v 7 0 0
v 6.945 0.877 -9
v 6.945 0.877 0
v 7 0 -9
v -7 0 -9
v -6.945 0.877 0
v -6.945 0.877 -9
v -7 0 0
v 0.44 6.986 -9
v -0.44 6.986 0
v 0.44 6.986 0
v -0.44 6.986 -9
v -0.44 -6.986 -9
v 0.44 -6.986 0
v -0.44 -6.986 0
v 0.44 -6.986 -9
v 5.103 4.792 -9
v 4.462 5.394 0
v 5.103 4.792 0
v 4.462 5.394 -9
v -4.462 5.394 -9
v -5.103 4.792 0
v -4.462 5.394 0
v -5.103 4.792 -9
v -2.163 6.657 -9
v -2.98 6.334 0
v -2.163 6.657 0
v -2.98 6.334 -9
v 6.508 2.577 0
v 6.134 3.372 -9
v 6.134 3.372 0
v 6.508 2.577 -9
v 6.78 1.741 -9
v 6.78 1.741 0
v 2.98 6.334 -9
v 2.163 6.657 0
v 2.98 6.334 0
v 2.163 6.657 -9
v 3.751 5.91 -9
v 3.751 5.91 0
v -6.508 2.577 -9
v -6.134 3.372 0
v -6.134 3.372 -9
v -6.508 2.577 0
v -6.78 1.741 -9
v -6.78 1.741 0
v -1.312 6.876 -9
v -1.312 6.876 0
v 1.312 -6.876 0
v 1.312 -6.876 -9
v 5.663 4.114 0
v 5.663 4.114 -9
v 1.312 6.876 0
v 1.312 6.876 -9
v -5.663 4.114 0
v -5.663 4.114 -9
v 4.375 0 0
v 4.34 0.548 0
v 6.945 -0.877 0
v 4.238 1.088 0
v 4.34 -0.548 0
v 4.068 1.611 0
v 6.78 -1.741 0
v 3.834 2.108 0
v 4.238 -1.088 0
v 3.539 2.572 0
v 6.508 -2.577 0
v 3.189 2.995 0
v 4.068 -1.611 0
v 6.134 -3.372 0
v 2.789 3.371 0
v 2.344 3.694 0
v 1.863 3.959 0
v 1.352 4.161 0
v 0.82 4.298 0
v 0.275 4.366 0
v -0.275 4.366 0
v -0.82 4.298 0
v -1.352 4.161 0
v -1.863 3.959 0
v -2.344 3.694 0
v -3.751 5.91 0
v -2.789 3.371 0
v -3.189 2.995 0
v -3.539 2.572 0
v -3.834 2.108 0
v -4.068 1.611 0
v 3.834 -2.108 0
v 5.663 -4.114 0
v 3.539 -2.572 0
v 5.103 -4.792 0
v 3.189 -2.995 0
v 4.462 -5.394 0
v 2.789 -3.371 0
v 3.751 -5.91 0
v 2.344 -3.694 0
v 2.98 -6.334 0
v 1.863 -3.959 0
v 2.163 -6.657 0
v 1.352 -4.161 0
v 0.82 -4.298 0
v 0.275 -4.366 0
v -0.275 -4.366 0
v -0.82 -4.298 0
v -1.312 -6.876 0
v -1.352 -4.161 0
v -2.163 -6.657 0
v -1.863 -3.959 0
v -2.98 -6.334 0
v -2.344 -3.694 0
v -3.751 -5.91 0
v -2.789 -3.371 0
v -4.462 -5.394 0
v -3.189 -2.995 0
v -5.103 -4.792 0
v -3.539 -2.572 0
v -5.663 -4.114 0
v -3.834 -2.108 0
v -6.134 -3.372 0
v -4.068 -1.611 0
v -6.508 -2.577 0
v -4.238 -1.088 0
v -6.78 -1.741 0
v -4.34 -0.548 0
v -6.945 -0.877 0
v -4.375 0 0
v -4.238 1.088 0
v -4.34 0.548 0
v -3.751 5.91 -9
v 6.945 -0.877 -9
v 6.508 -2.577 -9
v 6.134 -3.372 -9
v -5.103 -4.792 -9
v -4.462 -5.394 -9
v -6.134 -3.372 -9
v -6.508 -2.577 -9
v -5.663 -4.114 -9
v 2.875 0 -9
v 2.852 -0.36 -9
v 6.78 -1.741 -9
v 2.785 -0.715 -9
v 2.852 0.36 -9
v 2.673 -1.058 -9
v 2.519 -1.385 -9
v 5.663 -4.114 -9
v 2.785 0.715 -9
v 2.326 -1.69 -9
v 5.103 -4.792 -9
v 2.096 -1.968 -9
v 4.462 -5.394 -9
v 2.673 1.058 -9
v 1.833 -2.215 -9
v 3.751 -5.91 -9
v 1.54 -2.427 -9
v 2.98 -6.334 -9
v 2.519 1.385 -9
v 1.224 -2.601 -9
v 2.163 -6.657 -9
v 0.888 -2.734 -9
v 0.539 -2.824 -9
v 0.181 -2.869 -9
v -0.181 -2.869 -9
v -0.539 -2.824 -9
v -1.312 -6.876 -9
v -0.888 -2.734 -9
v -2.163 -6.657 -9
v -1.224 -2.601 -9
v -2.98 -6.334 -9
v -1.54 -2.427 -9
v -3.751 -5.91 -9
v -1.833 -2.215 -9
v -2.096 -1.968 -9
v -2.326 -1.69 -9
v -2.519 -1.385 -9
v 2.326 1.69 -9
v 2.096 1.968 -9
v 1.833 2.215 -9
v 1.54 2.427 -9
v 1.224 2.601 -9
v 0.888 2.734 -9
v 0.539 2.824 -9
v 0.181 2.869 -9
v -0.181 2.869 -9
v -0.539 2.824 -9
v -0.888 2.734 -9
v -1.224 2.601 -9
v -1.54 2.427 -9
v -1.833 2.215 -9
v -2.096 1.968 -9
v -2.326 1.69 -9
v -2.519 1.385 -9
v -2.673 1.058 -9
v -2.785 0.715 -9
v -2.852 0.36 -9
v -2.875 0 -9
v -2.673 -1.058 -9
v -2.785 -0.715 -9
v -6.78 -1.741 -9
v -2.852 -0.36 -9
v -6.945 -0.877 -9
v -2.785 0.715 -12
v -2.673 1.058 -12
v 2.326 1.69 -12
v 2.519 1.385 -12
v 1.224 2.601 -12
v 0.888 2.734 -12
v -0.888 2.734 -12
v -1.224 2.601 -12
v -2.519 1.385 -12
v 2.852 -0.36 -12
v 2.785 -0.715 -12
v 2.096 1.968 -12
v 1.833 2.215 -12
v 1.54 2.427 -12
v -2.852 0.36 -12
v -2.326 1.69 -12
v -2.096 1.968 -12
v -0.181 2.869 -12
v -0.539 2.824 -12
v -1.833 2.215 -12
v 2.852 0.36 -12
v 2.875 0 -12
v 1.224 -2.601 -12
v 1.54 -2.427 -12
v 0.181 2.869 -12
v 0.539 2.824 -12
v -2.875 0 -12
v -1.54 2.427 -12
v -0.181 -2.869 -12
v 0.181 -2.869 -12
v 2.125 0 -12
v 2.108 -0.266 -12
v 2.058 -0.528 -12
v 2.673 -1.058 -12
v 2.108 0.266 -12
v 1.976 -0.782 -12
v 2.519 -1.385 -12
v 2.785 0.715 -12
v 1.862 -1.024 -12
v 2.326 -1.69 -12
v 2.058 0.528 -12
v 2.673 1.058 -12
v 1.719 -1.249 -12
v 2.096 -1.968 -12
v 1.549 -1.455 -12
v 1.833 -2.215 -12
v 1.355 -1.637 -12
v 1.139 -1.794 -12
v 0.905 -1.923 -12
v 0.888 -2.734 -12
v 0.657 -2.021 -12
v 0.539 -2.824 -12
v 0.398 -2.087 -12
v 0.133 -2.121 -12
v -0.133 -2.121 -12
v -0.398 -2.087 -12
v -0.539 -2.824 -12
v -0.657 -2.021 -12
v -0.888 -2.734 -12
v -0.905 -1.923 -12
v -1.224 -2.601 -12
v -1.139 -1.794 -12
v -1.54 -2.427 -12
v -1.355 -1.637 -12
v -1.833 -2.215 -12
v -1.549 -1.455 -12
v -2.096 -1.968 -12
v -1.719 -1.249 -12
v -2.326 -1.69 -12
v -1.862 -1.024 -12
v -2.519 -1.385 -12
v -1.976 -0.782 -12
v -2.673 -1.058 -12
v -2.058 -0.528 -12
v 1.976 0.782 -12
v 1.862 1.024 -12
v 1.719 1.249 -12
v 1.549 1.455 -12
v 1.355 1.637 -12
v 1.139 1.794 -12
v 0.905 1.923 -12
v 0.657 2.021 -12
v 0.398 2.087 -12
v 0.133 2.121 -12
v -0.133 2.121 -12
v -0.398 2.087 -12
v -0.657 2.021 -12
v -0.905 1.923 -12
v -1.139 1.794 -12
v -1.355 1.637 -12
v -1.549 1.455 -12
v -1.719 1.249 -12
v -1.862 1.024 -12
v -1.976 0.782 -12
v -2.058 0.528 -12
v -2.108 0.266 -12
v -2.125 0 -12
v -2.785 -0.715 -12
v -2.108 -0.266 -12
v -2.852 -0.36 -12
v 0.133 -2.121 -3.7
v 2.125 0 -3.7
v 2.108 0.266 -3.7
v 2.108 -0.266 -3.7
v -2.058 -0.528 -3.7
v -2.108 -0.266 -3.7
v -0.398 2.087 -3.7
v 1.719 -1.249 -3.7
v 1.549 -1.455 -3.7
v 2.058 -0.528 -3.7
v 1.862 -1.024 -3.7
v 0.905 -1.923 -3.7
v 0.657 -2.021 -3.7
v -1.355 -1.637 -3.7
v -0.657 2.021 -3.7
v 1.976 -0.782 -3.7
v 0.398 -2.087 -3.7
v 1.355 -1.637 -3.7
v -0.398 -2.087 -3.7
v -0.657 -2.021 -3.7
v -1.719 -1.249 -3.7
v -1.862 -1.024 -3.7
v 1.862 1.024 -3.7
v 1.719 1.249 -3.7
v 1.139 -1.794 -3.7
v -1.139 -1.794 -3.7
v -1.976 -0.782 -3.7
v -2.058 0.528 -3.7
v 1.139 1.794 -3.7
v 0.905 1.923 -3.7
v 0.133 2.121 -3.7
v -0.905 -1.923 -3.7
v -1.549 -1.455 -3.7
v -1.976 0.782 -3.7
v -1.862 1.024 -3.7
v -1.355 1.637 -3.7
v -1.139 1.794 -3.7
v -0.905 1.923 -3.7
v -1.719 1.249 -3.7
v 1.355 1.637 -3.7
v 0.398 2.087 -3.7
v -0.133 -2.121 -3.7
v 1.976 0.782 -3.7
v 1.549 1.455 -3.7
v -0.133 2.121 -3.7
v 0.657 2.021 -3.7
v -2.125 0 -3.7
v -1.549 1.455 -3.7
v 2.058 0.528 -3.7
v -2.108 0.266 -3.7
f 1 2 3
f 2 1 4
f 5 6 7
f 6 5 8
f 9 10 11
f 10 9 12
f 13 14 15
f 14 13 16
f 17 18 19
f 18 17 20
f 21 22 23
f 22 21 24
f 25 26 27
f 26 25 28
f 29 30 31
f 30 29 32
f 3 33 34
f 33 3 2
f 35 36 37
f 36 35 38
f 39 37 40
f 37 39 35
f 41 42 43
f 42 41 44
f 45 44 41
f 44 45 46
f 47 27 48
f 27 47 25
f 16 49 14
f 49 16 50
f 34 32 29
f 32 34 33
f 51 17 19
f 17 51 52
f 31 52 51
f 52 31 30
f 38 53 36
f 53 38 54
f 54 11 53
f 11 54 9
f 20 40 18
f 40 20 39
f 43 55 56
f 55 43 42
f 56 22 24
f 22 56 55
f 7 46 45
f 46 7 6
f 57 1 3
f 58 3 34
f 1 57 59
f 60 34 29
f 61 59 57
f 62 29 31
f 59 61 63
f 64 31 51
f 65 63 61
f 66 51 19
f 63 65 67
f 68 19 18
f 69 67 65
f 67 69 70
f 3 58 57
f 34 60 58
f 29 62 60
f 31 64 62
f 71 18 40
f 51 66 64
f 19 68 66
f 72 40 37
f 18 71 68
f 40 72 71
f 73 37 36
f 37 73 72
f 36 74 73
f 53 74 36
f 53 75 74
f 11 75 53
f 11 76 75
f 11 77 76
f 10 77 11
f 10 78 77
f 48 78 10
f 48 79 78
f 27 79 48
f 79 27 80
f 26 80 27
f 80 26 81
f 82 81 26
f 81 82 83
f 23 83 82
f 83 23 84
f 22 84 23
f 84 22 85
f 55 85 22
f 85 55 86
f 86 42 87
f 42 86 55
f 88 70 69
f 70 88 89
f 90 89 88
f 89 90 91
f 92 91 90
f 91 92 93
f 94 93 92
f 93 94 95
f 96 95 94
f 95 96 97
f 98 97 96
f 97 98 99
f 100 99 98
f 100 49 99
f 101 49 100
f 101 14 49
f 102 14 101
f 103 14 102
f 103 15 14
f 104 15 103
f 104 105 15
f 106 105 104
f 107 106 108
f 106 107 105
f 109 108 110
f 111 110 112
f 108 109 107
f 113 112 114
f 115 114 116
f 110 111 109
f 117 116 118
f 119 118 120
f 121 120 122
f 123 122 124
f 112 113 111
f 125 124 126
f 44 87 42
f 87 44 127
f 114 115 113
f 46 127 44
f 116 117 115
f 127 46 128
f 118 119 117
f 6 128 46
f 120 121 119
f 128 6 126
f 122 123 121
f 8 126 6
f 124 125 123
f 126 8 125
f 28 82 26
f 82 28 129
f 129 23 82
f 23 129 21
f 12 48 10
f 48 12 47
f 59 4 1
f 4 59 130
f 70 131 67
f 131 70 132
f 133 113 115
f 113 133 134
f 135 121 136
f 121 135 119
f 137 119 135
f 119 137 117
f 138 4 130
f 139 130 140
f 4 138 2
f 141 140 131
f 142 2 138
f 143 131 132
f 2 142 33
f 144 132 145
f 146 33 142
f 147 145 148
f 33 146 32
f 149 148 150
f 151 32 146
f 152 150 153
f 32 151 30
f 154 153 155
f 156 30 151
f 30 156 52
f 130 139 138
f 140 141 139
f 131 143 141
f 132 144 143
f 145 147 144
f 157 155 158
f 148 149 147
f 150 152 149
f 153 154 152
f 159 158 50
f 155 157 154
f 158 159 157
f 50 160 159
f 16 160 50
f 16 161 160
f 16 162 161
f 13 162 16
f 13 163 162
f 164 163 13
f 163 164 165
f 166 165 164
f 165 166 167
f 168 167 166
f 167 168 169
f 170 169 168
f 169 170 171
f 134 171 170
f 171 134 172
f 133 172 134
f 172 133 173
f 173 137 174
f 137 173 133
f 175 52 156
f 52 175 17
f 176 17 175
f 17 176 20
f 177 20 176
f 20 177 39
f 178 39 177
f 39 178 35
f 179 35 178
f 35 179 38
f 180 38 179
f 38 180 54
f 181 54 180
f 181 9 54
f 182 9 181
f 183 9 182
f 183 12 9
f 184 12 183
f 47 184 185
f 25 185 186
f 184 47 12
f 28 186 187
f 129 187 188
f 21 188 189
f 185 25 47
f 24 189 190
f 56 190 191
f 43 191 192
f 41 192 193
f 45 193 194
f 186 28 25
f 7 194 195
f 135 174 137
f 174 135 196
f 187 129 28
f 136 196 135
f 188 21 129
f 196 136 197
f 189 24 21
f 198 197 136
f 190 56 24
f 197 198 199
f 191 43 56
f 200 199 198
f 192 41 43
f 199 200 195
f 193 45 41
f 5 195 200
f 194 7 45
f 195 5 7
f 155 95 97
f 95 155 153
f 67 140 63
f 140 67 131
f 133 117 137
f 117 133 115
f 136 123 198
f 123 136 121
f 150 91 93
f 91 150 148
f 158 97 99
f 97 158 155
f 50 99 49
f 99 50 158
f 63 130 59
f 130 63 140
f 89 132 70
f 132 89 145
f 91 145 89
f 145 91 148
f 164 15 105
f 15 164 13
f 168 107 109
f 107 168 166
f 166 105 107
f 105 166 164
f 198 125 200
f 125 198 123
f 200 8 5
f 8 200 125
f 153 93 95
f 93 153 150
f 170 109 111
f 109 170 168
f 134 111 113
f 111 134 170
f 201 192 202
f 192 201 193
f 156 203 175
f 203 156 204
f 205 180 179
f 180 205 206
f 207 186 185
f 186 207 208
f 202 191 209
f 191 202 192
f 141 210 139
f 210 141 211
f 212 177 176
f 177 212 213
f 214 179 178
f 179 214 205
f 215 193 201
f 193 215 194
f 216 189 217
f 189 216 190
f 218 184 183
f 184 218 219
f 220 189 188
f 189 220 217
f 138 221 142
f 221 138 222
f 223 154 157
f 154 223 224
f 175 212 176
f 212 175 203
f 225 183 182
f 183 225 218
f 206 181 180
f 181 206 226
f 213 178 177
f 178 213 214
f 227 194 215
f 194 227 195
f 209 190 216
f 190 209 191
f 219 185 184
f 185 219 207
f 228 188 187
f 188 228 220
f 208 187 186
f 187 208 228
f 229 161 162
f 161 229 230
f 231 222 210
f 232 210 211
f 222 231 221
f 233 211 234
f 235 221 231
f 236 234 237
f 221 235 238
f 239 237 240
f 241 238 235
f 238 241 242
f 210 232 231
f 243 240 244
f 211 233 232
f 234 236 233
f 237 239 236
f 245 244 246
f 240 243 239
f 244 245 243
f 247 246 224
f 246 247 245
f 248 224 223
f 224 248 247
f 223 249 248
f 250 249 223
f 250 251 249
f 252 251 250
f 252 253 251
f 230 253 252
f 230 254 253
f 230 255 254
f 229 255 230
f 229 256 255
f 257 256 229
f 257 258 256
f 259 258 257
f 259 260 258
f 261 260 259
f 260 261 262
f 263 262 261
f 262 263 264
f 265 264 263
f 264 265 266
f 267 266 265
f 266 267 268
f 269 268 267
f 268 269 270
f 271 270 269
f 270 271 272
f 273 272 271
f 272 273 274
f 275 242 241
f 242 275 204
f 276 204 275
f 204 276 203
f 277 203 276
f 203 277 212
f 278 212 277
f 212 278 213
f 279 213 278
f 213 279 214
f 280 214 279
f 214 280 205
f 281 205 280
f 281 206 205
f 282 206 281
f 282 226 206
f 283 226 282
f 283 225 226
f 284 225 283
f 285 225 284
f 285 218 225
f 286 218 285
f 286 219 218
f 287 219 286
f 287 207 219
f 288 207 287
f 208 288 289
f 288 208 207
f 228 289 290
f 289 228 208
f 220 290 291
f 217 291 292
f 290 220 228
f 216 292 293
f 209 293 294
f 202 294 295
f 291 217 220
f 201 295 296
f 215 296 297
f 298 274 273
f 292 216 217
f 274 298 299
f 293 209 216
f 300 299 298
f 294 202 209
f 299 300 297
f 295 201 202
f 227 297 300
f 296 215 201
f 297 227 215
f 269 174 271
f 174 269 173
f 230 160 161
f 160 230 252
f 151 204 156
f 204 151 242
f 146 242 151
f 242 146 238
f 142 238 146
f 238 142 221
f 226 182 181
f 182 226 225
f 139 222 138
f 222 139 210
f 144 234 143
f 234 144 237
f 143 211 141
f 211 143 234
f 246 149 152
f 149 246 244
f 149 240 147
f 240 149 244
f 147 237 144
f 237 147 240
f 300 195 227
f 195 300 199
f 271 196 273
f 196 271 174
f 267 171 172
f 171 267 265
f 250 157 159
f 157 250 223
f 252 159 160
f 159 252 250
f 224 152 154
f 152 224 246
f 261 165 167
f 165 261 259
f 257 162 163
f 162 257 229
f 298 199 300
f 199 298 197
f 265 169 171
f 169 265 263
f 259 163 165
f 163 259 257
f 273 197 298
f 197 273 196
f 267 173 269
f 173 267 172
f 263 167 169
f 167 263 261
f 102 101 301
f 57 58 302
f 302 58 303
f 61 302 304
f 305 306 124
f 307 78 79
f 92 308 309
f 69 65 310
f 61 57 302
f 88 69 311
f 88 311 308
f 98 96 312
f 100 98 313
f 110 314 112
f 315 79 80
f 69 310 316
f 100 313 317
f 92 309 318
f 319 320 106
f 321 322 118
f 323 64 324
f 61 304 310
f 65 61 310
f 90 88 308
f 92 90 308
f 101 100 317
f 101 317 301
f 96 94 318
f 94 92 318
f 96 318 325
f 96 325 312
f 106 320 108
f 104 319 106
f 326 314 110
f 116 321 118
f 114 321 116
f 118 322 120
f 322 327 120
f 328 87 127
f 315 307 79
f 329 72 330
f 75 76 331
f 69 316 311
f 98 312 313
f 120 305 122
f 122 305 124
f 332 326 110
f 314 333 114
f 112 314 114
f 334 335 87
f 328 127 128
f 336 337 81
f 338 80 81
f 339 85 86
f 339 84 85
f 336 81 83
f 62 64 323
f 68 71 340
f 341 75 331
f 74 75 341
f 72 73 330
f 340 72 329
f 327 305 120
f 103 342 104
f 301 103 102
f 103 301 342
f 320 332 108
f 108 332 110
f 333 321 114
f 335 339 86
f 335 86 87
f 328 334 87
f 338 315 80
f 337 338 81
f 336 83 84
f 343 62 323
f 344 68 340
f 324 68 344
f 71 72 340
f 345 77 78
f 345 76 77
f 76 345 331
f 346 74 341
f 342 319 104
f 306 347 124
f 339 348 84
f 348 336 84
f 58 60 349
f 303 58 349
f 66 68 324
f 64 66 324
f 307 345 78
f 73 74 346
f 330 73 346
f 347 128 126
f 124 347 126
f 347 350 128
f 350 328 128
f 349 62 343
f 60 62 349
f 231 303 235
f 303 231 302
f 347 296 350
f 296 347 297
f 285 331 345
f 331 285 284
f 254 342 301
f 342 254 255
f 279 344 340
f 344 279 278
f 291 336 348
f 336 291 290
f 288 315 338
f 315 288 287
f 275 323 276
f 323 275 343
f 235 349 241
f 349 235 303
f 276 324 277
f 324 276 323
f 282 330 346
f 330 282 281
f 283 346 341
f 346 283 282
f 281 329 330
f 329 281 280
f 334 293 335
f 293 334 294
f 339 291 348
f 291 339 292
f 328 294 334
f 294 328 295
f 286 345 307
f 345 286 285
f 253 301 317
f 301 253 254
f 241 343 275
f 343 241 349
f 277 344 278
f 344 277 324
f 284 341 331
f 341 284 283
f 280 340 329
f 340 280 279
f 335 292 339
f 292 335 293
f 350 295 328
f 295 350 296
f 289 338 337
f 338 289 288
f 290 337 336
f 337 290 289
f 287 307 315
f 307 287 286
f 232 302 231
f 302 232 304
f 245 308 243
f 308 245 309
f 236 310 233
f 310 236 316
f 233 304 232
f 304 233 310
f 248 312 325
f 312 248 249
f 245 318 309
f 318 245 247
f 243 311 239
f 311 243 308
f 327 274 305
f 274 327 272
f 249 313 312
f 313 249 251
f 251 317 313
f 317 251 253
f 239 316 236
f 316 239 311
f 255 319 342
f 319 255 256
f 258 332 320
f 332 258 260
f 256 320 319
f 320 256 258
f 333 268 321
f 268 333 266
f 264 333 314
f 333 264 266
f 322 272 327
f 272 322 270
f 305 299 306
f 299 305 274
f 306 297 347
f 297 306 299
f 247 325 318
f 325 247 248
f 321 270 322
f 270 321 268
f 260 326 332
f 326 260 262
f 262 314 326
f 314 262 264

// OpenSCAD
$fn = 50;


difference() {
	union() {
		translate(v = [0, 0, -9.0000000000]) {
			cylinder(h = 9, r = 7.0000000000);
		}
		translate(v = [0, 0, -12.0000000000]) {
			cylinder(h = 12, r = 2.8750000000);
		}
	}
	union() {
		translate(v = [0, 0, 0]) {
			rotate(a = [0, 0, 0]) {
				difference() {
					union() {
						translate(v = [0, 0, -12.0000000000]) {
							cylinder(h = 12, r = 2.0000000000);
						}
						translate(v = [0, 0, -3.7000000000]) {
							cylinder(h = 3.7000000000, r1 = 2.1250000000, r2 = 4.3750000000);
						}
						translate(v = [0, 0, -12.0000000000]) {
							cylinder(h = 12, r = 2.1250000000);
						}
						translate(v = [0, 0, -12.0000000000]) {
							cylinder(h = 12, r = 2.0000000000);
						}
					}
					union();
				}
			}
		}
	}
}
